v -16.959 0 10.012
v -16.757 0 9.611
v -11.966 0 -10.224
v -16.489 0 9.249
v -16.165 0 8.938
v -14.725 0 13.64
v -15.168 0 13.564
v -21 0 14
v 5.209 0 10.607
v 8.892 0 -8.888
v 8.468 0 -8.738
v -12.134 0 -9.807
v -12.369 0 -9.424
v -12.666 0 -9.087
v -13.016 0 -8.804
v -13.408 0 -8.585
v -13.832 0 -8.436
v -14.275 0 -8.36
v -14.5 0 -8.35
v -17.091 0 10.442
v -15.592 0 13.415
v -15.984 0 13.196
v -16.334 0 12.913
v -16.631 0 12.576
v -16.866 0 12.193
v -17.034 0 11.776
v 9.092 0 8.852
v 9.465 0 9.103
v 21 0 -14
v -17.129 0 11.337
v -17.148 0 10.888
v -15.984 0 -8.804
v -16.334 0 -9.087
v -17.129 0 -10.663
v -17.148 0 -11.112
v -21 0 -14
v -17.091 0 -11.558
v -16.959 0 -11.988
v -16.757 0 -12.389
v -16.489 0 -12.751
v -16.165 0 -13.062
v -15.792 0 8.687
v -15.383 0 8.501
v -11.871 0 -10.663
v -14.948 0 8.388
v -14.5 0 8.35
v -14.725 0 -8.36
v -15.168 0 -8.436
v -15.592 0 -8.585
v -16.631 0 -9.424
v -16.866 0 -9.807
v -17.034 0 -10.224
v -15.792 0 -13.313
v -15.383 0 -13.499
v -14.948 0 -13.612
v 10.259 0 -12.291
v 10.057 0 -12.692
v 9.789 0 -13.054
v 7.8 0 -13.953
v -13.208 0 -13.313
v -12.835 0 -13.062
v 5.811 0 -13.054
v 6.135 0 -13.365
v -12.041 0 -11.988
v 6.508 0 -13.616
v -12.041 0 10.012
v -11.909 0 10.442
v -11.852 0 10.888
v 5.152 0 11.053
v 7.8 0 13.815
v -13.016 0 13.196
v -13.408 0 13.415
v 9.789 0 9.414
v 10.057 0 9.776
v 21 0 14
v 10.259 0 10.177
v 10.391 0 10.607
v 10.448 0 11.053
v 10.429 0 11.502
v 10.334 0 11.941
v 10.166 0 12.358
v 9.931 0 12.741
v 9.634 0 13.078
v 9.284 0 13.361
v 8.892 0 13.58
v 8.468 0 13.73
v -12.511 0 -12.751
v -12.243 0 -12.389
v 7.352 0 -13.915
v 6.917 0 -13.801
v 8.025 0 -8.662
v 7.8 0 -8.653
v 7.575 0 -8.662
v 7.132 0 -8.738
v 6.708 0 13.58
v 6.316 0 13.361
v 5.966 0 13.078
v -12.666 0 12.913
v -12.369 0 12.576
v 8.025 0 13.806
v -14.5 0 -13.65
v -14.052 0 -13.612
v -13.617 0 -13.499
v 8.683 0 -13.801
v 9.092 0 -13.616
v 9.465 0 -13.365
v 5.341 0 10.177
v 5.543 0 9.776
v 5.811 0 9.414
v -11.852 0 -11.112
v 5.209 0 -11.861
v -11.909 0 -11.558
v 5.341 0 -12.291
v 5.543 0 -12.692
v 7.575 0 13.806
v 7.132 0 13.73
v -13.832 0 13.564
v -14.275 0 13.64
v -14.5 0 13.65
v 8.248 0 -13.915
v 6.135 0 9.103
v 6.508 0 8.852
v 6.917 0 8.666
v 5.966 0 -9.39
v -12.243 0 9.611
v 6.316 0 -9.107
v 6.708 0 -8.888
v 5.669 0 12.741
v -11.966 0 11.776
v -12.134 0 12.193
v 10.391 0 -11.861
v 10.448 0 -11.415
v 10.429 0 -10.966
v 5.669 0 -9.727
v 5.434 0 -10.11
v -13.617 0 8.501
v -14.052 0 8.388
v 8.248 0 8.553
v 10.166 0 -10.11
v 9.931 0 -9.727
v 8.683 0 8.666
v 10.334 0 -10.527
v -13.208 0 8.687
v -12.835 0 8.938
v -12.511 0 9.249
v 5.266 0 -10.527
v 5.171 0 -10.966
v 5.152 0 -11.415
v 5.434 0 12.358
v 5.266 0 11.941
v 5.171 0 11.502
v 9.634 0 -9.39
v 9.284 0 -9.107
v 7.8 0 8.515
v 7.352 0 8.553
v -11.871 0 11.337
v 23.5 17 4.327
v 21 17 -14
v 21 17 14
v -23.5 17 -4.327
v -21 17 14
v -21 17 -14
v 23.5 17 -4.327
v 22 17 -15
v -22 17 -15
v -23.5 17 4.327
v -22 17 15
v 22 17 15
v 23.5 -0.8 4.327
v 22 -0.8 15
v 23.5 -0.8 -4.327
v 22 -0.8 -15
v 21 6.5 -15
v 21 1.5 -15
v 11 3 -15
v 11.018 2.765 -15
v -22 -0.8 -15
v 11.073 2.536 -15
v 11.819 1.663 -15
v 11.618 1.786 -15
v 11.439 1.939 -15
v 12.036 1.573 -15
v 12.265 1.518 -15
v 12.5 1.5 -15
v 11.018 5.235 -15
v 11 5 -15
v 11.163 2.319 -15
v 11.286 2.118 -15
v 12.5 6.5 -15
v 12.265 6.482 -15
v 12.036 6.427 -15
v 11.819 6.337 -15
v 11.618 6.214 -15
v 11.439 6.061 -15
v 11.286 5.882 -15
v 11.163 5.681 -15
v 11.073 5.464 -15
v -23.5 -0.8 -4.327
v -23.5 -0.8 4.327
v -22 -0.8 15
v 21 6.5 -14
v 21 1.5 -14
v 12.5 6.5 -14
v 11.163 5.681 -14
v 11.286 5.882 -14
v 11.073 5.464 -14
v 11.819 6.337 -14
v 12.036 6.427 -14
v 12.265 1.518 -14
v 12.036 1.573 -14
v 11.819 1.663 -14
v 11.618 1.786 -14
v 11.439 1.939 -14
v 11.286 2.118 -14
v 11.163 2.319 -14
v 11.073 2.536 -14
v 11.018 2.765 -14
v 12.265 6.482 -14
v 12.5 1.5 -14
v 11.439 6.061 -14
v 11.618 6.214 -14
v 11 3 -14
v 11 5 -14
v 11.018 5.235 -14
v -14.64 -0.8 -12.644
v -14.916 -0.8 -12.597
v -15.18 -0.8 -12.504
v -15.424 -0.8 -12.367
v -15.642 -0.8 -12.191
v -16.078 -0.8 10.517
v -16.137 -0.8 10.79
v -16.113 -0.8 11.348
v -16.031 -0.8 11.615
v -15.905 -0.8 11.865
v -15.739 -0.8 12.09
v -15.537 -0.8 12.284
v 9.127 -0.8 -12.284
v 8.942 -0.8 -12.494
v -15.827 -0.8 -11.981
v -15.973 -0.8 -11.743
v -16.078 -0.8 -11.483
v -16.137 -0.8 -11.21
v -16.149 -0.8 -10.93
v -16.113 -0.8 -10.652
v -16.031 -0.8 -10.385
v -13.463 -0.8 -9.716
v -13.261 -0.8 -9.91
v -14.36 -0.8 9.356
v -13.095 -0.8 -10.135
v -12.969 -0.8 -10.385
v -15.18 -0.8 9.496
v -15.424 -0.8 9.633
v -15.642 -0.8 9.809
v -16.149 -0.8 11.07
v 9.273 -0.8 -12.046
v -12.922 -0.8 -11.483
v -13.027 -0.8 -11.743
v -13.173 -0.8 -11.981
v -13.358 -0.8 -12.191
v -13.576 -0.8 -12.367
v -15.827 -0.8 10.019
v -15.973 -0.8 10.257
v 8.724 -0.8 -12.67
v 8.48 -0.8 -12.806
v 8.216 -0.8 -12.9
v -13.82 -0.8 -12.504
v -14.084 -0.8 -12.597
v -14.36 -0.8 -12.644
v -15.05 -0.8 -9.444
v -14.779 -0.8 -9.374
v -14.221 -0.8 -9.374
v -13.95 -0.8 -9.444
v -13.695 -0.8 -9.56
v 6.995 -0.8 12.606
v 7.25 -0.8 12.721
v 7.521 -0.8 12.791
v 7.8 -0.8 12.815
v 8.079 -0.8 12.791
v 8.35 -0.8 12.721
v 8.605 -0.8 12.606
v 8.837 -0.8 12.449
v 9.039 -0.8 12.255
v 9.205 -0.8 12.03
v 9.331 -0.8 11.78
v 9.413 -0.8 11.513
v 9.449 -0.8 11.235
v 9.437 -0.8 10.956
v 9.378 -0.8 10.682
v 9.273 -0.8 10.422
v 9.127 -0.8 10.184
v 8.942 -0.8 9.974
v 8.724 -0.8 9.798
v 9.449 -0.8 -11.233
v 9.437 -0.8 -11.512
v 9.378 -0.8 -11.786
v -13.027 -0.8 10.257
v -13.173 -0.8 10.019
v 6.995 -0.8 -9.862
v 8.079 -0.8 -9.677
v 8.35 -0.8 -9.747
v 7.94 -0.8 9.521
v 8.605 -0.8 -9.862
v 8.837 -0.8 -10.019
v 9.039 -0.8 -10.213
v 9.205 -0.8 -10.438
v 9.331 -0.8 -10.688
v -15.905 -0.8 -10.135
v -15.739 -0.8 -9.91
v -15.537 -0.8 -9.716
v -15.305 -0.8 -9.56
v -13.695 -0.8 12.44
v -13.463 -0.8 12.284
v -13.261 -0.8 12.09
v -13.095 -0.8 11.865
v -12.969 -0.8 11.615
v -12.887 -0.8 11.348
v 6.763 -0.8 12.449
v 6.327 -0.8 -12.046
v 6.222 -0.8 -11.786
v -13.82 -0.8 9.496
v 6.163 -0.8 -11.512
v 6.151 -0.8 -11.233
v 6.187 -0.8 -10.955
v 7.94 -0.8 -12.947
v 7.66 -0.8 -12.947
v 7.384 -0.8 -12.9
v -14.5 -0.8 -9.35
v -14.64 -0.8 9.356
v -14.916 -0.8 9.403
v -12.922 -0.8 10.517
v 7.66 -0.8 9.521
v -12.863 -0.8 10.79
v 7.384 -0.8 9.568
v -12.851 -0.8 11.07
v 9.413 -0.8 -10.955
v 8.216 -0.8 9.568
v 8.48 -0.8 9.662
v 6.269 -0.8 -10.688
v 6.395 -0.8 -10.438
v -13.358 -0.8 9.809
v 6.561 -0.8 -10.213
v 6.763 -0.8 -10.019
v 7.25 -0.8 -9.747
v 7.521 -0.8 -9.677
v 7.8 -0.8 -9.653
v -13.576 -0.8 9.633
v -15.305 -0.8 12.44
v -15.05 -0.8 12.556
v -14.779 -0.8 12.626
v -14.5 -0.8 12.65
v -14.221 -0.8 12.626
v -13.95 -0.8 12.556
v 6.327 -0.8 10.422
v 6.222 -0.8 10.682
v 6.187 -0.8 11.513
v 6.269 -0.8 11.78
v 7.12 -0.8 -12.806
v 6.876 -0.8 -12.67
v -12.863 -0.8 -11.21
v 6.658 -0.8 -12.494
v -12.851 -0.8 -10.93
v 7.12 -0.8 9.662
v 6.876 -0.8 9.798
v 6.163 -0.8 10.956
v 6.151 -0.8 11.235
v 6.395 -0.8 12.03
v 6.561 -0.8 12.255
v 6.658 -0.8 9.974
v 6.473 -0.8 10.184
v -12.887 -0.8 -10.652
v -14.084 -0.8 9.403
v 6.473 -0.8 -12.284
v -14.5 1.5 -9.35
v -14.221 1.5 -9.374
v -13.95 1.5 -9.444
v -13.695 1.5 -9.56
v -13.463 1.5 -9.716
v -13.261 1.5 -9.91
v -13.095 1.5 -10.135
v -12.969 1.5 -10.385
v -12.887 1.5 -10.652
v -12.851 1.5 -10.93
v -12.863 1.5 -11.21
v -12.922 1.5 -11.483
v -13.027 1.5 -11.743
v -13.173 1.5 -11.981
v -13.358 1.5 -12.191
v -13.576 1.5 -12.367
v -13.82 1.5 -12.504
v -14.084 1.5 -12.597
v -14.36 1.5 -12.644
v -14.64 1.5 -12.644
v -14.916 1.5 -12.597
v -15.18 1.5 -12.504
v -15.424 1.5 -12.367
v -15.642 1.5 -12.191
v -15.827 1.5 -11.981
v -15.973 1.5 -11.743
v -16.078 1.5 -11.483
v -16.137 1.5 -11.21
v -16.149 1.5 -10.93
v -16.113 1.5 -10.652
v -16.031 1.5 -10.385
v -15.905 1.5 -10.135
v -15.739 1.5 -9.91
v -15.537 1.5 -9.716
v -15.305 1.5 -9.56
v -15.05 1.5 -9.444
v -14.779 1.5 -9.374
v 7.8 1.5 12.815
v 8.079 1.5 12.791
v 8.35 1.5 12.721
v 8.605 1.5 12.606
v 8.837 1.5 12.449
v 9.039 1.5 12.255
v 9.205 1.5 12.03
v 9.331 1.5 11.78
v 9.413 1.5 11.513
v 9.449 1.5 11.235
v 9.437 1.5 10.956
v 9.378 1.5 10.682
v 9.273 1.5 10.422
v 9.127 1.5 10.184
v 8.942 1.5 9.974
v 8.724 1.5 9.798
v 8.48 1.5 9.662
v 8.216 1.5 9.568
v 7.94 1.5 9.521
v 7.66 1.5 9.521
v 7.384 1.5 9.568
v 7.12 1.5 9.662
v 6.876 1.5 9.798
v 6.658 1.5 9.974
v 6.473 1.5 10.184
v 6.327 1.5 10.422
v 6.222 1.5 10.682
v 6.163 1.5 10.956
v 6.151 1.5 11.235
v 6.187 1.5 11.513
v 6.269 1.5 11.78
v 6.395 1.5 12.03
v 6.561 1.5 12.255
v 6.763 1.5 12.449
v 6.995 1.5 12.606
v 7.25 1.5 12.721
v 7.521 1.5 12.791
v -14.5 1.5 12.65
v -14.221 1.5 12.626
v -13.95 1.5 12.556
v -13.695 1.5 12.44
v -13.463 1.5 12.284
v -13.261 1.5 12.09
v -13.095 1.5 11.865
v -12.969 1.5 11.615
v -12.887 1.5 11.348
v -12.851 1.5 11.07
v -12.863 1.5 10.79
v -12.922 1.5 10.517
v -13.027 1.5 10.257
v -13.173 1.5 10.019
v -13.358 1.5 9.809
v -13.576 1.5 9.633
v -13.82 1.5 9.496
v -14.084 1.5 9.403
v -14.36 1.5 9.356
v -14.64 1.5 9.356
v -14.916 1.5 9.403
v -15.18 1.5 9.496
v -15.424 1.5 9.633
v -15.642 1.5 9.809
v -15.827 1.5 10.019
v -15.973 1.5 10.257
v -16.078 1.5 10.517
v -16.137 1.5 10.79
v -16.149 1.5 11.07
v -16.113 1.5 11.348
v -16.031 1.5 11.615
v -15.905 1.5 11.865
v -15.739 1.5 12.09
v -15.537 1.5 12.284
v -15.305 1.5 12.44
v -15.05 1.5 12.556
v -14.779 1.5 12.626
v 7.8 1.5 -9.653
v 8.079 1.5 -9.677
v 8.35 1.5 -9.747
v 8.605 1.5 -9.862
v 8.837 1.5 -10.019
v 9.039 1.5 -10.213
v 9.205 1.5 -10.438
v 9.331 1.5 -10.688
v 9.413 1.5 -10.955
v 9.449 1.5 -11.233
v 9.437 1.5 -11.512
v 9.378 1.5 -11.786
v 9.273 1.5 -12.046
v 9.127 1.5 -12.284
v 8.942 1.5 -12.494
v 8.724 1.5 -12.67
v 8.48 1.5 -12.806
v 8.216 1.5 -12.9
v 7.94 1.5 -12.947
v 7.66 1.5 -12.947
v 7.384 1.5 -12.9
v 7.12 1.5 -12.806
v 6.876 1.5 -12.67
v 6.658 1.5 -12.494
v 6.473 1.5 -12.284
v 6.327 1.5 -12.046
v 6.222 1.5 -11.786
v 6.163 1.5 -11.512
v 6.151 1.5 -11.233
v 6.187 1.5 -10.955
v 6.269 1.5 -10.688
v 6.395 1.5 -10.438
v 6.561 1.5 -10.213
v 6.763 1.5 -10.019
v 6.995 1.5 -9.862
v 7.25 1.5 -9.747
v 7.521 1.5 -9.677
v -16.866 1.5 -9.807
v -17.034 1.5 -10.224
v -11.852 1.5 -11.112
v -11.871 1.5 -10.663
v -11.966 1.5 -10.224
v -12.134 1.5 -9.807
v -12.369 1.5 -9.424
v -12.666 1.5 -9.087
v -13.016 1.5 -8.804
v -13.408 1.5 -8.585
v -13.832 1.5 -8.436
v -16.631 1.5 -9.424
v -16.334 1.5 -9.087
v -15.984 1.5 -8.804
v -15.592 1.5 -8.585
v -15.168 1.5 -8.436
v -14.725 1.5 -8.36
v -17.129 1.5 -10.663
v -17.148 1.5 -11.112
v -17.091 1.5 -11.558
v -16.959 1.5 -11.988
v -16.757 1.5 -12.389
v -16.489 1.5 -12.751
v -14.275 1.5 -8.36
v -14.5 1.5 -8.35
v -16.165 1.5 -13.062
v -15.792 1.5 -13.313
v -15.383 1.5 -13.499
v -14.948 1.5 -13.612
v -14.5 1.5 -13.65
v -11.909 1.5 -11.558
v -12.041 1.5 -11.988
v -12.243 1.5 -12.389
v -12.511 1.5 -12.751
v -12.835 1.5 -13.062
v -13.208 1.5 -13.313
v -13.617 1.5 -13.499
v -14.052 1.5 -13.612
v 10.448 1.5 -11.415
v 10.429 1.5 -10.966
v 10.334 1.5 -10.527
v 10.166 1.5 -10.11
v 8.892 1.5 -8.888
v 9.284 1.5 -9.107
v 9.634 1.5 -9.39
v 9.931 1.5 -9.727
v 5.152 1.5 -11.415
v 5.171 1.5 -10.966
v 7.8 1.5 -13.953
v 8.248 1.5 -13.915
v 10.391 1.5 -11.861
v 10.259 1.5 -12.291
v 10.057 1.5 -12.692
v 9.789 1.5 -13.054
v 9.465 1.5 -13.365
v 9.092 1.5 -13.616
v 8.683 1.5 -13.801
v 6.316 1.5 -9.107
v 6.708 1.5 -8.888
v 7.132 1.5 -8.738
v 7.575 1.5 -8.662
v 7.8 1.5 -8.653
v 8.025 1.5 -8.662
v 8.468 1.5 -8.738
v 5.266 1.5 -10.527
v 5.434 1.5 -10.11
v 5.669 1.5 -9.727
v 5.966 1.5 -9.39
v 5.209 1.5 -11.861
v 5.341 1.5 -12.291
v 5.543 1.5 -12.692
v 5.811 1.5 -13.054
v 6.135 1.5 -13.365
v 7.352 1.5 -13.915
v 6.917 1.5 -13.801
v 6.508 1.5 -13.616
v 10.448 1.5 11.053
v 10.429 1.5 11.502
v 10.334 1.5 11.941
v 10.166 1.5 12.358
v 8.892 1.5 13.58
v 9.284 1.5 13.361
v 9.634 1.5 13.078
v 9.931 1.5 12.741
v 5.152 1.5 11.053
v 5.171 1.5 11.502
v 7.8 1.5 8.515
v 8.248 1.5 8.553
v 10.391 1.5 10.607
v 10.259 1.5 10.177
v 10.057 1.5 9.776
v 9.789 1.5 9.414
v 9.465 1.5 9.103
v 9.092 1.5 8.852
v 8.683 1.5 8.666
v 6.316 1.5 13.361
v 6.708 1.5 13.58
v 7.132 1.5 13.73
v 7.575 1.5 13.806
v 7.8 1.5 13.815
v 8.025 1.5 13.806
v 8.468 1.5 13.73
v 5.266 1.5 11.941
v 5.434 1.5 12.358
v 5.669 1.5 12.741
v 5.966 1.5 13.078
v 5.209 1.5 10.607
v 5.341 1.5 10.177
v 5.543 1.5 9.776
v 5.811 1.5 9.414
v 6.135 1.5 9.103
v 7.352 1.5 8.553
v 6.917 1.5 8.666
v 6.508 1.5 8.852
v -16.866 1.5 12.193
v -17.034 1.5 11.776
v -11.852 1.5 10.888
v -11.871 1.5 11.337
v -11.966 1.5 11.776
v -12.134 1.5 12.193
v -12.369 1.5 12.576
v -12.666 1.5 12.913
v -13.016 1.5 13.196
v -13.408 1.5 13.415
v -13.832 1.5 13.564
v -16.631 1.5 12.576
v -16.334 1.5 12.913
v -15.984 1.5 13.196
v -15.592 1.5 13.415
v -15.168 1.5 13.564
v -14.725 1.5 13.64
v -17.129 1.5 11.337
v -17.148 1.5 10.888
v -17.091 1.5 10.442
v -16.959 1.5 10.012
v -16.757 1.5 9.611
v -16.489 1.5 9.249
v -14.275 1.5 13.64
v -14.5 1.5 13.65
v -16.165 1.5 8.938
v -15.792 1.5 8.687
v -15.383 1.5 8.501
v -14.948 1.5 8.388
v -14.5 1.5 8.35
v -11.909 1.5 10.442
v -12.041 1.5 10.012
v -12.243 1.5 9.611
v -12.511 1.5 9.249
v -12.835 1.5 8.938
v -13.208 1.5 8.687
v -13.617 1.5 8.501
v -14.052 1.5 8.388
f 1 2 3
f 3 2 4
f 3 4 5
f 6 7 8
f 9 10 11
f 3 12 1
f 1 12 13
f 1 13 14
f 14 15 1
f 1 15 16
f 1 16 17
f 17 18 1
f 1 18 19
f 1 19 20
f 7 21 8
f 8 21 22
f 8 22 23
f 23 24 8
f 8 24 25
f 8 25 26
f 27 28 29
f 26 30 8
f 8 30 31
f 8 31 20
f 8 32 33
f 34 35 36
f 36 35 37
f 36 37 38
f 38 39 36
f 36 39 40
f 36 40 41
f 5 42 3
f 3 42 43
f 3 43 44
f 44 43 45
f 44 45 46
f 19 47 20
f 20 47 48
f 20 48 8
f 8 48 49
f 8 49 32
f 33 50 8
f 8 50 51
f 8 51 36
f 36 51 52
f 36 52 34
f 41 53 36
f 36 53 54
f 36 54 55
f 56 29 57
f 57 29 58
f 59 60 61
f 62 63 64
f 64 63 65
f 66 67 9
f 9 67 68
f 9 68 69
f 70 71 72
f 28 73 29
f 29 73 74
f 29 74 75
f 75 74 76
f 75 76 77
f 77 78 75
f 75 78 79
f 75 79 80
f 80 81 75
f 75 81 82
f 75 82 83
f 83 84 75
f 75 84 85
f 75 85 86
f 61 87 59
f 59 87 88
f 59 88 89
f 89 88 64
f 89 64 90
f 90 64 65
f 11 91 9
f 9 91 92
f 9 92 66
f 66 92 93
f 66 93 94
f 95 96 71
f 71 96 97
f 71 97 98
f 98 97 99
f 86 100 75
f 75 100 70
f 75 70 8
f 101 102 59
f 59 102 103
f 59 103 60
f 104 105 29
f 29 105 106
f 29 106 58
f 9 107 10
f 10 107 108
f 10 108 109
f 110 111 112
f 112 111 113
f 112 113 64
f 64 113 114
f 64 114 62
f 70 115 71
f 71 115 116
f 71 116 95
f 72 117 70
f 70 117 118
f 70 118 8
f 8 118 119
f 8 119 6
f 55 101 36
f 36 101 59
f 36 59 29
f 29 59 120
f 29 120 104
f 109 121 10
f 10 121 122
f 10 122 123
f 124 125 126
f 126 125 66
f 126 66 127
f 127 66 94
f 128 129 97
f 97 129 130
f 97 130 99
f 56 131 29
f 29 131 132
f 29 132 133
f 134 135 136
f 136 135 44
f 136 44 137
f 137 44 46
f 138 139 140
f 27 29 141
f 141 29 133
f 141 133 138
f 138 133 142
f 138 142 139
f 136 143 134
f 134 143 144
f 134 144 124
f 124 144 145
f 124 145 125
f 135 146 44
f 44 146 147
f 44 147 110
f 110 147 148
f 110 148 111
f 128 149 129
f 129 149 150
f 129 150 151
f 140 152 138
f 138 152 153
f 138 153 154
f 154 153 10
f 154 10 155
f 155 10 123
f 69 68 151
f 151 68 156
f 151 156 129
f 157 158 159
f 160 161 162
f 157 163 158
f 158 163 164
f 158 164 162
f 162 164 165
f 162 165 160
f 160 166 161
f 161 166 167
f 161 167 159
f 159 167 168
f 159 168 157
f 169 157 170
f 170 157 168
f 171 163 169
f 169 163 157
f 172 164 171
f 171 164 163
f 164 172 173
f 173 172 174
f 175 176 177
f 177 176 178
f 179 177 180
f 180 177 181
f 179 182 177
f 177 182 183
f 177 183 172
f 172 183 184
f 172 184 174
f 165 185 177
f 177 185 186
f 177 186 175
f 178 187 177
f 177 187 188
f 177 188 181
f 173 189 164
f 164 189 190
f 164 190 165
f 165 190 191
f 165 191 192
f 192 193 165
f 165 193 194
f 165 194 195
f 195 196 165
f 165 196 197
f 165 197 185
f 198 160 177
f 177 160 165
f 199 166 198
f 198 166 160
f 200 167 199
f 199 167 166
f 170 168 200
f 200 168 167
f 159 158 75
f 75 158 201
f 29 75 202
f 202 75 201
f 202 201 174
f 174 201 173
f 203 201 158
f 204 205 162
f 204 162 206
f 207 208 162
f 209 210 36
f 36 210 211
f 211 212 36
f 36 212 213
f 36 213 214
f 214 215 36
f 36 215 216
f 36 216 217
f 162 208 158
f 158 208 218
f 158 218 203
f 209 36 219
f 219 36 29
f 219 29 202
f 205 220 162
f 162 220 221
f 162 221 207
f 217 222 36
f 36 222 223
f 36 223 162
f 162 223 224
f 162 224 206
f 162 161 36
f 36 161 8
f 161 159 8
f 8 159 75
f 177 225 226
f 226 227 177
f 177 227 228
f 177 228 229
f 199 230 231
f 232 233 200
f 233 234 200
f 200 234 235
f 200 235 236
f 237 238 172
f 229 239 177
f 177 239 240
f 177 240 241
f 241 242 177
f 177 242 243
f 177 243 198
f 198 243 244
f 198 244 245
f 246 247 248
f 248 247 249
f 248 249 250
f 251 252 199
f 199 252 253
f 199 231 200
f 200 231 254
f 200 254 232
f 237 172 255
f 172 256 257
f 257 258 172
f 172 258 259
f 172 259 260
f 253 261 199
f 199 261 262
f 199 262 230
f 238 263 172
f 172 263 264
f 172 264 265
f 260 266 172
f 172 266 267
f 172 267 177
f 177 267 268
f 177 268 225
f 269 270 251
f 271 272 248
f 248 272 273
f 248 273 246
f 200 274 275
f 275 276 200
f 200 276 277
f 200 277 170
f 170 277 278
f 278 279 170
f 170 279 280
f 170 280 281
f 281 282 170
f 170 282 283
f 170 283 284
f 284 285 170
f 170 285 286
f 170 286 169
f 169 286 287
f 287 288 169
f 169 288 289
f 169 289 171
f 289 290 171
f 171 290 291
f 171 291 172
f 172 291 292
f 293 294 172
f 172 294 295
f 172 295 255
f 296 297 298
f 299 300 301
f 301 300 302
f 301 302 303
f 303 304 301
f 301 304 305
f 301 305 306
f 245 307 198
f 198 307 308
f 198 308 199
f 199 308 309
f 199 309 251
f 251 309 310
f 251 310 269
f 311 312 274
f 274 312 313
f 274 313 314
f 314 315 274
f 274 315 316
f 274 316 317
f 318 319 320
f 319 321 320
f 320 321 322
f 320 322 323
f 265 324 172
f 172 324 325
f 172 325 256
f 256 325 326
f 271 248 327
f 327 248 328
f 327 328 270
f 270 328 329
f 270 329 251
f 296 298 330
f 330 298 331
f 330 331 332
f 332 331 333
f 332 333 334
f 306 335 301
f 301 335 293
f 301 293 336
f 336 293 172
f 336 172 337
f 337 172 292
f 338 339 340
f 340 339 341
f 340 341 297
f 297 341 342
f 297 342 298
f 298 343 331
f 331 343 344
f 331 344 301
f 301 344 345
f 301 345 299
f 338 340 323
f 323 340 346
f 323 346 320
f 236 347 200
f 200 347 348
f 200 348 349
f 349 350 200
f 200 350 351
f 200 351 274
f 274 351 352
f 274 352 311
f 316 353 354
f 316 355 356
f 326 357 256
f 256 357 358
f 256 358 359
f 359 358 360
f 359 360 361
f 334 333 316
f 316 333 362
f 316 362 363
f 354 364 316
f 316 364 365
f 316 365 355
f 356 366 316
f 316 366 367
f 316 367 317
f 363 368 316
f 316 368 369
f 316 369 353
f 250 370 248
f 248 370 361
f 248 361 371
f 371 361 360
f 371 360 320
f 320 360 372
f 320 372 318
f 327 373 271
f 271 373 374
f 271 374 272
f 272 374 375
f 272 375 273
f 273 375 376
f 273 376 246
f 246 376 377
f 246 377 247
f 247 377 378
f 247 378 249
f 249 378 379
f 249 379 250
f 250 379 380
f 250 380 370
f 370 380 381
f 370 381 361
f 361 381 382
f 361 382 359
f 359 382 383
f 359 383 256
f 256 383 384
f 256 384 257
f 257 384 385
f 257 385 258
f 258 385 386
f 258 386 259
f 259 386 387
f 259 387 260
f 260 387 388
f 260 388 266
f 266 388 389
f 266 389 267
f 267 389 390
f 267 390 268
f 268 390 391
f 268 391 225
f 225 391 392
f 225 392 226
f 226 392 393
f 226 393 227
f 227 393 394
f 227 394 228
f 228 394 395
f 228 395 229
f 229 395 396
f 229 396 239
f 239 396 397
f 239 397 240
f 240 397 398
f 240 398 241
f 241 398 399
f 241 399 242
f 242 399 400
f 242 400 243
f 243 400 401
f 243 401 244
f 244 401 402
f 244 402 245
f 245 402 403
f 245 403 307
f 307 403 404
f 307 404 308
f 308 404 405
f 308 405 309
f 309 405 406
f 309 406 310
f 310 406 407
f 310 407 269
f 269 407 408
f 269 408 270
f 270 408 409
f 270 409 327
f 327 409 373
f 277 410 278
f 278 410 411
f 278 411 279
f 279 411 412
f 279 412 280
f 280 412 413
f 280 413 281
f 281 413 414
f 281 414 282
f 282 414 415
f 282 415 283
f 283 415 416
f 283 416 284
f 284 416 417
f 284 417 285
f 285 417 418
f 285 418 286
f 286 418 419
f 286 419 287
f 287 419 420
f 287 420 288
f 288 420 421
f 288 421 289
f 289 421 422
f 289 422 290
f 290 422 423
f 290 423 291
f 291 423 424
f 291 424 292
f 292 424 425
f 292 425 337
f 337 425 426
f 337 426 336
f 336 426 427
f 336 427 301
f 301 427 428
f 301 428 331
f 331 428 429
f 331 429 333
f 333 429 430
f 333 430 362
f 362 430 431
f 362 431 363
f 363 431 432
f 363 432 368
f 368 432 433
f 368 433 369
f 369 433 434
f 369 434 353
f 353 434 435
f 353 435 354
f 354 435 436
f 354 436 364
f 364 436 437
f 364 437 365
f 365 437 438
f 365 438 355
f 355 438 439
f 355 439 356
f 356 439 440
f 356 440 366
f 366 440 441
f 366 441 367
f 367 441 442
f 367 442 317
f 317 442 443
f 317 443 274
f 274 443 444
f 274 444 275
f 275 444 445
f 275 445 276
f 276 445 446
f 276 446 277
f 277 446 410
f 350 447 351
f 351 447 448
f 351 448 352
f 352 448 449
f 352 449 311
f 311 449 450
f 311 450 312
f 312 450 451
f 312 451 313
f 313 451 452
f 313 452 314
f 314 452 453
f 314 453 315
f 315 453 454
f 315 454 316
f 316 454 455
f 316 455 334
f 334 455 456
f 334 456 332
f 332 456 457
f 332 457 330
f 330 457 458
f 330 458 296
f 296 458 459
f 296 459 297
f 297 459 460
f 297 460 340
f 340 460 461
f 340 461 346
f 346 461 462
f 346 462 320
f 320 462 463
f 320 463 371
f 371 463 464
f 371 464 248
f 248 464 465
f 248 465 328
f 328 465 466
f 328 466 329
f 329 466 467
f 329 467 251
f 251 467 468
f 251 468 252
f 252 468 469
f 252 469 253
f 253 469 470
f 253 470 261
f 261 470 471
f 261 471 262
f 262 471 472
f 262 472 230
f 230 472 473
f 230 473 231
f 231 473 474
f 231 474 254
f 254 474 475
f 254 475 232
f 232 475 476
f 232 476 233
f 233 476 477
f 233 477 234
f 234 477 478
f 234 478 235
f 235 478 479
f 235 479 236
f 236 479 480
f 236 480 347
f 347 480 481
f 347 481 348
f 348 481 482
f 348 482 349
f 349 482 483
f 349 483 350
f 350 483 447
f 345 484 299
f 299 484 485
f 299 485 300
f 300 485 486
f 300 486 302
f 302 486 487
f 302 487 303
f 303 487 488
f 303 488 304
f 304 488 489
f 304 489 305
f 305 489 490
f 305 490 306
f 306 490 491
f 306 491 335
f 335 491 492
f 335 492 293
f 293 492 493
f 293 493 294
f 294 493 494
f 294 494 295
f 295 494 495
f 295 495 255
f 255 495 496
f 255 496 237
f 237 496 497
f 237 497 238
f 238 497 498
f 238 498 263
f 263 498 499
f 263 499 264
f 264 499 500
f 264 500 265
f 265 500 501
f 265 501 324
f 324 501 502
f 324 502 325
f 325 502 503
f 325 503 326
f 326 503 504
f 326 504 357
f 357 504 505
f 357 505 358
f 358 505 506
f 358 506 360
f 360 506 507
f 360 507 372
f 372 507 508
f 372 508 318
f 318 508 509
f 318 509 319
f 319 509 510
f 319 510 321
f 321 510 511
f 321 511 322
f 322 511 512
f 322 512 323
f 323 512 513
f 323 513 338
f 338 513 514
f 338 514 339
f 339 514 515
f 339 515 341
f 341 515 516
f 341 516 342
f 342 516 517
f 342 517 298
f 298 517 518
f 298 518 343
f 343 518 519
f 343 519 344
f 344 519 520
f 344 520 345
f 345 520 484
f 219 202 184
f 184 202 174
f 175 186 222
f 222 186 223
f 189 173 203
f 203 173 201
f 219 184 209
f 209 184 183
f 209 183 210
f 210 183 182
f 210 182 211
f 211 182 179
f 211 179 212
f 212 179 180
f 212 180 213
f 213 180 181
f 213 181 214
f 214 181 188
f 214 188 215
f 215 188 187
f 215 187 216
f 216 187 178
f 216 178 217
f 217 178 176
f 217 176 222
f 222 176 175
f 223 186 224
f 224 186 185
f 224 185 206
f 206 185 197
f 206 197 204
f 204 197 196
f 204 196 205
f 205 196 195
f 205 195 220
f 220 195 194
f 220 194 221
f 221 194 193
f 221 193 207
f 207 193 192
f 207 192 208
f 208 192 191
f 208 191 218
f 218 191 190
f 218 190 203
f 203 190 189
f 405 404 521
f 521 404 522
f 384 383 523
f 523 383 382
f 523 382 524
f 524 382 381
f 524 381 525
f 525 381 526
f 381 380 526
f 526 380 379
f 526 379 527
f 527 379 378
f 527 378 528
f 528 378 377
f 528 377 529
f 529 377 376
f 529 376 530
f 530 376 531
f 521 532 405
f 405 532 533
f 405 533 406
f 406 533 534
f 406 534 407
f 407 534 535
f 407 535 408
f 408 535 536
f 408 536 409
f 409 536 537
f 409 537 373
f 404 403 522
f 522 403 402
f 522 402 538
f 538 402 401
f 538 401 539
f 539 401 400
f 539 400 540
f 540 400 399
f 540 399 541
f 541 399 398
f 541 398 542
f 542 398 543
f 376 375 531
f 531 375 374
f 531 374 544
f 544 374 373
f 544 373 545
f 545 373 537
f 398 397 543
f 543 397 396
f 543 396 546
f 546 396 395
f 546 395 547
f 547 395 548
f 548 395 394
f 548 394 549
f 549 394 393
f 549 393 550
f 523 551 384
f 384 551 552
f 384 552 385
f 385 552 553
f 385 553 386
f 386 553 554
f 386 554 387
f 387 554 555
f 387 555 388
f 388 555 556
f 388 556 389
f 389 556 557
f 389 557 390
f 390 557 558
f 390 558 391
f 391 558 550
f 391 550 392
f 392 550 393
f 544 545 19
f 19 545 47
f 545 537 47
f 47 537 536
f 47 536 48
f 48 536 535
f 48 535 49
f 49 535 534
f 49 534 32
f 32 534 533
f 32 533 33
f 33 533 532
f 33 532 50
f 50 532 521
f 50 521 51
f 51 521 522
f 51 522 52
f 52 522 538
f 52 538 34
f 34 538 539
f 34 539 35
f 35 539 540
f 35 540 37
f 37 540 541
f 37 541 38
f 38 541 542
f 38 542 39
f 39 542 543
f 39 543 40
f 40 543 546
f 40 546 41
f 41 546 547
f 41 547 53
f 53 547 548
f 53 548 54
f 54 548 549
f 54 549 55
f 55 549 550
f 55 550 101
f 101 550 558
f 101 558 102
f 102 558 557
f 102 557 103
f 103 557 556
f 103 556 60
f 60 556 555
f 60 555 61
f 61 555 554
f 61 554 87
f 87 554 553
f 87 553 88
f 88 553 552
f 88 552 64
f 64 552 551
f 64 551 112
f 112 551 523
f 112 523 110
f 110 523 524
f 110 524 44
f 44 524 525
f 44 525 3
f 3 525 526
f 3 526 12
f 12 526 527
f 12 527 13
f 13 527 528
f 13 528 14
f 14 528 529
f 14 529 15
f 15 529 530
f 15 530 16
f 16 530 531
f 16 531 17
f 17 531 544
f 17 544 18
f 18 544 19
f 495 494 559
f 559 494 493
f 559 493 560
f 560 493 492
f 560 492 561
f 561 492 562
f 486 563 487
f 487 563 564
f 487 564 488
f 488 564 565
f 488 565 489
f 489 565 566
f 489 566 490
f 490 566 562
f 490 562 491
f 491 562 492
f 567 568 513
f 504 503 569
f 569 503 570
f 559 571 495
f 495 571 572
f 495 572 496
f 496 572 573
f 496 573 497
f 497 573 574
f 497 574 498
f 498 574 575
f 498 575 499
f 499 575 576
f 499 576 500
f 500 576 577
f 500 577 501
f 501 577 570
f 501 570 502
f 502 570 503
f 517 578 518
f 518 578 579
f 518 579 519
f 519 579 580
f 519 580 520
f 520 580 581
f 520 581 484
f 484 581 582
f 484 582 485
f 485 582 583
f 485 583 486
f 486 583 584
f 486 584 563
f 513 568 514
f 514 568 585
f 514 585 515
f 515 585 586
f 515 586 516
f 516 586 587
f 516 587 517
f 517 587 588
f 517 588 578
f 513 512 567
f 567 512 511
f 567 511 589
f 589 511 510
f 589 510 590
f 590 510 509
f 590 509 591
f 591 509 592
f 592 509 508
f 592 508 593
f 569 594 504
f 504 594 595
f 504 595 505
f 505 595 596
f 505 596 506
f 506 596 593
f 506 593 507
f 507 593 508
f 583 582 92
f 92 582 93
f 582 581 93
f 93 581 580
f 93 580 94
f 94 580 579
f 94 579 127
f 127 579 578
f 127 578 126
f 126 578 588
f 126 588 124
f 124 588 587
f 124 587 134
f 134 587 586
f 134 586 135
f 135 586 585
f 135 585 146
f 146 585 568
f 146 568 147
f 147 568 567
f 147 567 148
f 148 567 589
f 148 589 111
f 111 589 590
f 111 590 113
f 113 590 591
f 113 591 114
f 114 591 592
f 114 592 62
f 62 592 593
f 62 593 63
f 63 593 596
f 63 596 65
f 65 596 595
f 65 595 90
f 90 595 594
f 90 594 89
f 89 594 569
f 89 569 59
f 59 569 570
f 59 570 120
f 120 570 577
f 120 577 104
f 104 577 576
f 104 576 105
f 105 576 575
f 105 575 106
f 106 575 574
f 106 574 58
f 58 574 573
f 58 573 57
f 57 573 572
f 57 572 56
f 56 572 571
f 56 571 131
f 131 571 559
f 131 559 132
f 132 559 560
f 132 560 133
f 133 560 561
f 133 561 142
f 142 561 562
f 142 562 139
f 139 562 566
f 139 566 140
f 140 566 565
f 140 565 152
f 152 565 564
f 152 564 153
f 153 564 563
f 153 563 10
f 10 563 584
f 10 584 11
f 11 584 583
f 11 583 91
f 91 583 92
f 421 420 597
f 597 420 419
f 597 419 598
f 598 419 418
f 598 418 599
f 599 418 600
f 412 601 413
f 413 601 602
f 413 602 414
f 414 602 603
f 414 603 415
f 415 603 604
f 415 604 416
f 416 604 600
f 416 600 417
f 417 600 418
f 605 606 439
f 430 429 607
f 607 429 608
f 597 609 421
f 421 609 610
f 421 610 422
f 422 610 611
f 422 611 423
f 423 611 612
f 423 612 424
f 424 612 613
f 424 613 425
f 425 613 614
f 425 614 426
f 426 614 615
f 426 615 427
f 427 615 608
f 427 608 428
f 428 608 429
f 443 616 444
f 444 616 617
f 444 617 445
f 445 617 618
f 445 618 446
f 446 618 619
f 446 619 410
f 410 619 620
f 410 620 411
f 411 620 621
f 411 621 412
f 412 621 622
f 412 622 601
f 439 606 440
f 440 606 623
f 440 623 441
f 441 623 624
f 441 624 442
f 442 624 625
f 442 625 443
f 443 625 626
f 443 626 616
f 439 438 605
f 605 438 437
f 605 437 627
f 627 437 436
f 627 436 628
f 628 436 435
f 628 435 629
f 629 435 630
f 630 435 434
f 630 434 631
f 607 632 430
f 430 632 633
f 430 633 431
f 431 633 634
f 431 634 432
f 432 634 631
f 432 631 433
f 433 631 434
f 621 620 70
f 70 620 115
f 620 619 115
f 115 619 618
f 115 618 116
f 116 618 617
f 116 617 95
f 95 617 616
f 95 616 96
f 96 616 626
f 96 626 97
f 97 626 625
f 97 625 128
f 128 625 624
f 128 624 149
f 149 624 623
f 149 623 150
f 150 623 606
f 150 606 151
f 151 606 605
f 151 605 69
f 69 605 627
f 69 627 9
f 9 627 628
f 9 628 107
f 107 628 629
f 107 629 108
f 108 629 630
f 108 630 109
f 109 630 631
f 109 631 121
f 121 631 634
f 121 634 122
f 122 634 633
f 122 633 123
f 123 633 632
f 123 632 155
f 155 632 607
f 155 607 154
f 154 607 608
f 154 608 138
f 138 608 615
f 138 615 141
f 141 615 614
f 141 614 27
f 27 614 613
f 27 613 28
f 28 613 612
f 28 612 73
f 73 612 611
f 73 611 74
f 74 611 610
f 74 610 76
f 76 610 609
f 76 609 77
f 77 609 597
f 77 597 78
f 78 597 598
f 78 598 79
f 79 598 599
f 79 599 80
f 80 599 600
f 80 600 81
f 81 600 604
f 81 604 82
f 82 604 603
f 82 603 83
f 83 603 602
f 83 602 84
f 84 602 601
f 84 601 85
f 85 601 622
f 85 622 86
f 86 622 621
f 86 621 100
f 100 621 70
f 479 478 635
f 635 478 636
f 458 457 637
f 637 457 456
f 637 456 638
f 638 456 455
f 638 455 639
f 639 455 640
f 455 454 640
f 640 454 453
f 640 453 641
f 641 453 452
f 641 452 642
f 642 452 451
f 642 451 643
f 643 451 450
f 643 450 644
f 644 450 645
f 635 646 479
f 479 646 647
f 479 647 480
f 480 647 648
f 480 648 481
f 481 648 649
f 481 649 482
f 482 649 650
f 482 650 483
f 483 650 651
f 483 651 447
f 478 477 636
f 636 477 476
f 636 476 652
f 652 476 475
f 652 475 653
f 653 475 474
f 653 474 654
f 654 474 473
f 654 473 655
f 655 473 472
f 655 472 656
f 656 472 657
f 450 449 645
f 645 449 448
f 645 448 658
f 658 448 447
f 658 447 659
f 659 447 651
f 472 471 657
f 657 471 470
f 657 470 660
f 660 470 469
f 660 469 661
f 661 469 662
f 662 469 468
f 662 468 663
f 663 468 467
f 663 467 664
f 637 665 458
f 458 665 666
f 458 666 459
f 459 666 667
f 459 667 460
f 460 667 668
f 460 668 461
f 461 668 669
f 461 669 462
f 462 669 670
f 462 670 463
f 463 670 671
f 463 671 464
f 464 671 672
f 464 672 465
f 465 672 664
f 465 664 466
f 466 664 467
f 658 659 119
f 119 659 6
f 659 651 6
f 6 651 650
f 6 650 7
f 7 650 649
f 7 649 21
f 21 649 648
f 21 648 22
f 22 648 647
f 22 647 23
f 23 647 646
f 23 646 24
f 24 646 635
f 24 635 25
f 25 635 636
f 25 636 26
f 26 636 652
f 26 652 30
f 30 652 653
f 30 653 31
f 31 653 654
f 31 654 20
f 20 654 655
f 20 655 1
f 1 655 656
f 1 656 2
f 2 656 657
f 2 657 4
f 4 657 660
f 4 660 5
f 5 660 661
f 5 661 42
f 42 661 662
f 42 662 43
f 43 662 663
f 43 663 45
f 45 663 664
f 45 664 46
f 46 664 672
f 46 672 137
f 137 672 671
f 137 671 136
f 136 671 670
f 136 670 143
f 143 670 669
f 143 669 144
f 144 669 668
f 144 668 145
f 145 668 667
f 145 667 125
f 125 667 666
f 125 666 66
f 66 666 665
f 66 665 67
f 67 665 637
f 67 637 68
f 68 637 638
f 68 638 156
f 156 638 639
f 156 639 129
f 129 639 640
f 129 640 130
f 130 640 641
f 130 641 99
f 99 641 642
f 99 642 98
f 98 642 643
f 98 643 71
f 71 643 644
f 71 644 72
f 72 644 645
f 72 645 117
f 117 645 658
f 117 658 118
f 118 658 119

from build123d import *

# Parameters (mm, degrees)
SKETCH1_W           = 42
SKETCH1_H           = 28
BOSS_EXTRUDE1_DEPTH = 17
BOSS_EXTRUDE3_DEPTH = 0.8
SKETCH4_R           = 1.65
CUT_EXTRUDE1_DEPTH  = 10.8
SKETCH5_W           = 10
SKETCH5_H           = 5
CUT_EXTRUDE2_DEPTH  = 10.8
FILLET1_R           = 1.5
BOSS_EXTRUDE4_START = 1.5
SKETCH6_R           = 2.65
SKETCH6_R_2         = 1.65
BOSS_EXTRUDE4_DEPTH = 1.5


with BuildPart() as part:
    # Sketch1 → Boss-Extrude1 (new body)
    with BuildSketch(Plane(origin=(0, 0, 0), x_dir=(1, 0, 0), z_dir=(0, 1, 0))):
        Polygon((-22, 15), (-23.5, 4.326945416), (-23.5, -4.326945416), (-22, -15), (22, -15), (23.5, -4.326945416), (23.5, 4.326945416), (22, 15), align=None)
        Rectangle(SKETCH1_W, SKETCH1_H, mode=Mode.SUBTRACT)
    extrude(amount=BOSS_EXTRUDE1_DEPTH)

    # Sketch3 → Boss-Extrude3 (add)
    with BuildSketch(Plane.XZ):
        Polygon((-22, 15), (22, 15), (23.5, 4.326945416), (23.5, -4.326945416), (22, -15), (-22, -15), (-23.5, -4.326945416), (-23.5, 4.326945416), align=None)
    extrude(amount=BOSS_EXTRUDE3_DEPTH)

    # Sketch4 → Cut-Extrude1 (cut)
    with BuildSketch(Plane(origin=(0, 0, 0), x_dir=(1, 0, 0), z_dir=(0, 1, 0))):
        with Locations(Location((-14.5, 11, 0), (0, 0, 270))):
            Circle(SKETCH4_R)
        with Locations(Location((7.8, 11.302833977, 0), (0, 0, 270))):
            Circle(SKETCH4_R)
        with Locations(Location((-14.5, -11, 0), (0, 0, 270))):
            Circle(SKETCH4_R)
        with Locations(Location((7.8, -11.16509614, 0), (0, 0, 270))):
            Circle(SKETCH4_R)
    extrude(amount=-CUT_EXTRUDE1_DEPTH, mode=Mode.SUBTRACT)

    # Sketch5 → Cut-Extrude2 (cut)
    with BuildSketch(Plane.XY.offset(-14)):
        with Locations((16, 4)):
            Rectangle(SKETCH5_W, SKETCH5_H)
    extrude(amount=-CUT_EXTRUDE2_DEPTH, mode=Mode.SUBTRACT)

    # Fillet1
    fillet1_edges = [part.edges().sort_by_distance(p)[0] for p in [
        (11, 1.5, -14.5),
        (11, 6.5, -14.5),
    ]]
    fillet(fillet1_edges, radius=FILLET1_R)

    # Sketch6 → Boss-Extrude4 (add)
    # profile 1 of 4: a face of its own
    with BuildSketch(Plane(origin=(0, 0, 0), x_dir=(1, 0, 0), z_dir=(0, 1, 0)).offset(BOSS_EXTRUDE4_START)):
        with Locations(Location((-14.5, 11, 0), (0, 0, 270))):
            Circle(SKETCH6_R)
        with Locations(Location((-14.5, 11, 0), (0, 0, 270))):
            Circle(SKETCH6_R_2, mode=Mode.SUBTRACT)
    # profile 2 of 4: a face of its own
    with BuildSketch(Plane(origin=(0, 0, 0), x_dir=(1, 0, 0), z_dir=(0, 1, 0)).offset(BOSS_EXTRUDE4_START)):
        with Locations(Location((7.8, 11.302833977, 0), (0, 0, 270))):
            Circle(SKETCH6_R)
        with Locations(Location((7.8, 11.302833977, 0), (0, 0, 270))):
            Circle(SKETCH6_R_2, mode=Mode.SUBTRACT)
    # profile 3 of 4: a face of its own
    with BuildSketch(Plane(origin=(0, 0, 0), x_dir=(1, 0, 0), z_dir=(0, 1, 0)).offset(BOSS_EXTRUDE4_START)):
        with Locations(Location((7.8, -11.16509614, 0), (0, 0, 270))):
            Circle(SKETCH6_R)
        with Locations(Location((7.8, -11.16509614, 0), (0, 0, 270))):
            Circle(SKETCH6_R_2, mode=Mode.SUBTRACT)
    # profile 4 of 4: a face of its own
    with BuildSketch(Plane(origin=(0, 0, 0), x_dir=(1, 0, 0), z_dir=(0, 1, 0)).offset(BOSS_EXTRUDE4_START)):
        with Locations(Location((-14.5, -11, 0), (0, 0, 270))):
            Circle(SKETCH6_R)
        with Locations(Location((-14.5, -11, 0), (0, 0, 270))):
            Circle(SKETCH6_R_2, mode=Mode.SUBTRACT)
    extrude(amount=-BOSS_EXTRUDE4_DEPTH)


solid = part.part
